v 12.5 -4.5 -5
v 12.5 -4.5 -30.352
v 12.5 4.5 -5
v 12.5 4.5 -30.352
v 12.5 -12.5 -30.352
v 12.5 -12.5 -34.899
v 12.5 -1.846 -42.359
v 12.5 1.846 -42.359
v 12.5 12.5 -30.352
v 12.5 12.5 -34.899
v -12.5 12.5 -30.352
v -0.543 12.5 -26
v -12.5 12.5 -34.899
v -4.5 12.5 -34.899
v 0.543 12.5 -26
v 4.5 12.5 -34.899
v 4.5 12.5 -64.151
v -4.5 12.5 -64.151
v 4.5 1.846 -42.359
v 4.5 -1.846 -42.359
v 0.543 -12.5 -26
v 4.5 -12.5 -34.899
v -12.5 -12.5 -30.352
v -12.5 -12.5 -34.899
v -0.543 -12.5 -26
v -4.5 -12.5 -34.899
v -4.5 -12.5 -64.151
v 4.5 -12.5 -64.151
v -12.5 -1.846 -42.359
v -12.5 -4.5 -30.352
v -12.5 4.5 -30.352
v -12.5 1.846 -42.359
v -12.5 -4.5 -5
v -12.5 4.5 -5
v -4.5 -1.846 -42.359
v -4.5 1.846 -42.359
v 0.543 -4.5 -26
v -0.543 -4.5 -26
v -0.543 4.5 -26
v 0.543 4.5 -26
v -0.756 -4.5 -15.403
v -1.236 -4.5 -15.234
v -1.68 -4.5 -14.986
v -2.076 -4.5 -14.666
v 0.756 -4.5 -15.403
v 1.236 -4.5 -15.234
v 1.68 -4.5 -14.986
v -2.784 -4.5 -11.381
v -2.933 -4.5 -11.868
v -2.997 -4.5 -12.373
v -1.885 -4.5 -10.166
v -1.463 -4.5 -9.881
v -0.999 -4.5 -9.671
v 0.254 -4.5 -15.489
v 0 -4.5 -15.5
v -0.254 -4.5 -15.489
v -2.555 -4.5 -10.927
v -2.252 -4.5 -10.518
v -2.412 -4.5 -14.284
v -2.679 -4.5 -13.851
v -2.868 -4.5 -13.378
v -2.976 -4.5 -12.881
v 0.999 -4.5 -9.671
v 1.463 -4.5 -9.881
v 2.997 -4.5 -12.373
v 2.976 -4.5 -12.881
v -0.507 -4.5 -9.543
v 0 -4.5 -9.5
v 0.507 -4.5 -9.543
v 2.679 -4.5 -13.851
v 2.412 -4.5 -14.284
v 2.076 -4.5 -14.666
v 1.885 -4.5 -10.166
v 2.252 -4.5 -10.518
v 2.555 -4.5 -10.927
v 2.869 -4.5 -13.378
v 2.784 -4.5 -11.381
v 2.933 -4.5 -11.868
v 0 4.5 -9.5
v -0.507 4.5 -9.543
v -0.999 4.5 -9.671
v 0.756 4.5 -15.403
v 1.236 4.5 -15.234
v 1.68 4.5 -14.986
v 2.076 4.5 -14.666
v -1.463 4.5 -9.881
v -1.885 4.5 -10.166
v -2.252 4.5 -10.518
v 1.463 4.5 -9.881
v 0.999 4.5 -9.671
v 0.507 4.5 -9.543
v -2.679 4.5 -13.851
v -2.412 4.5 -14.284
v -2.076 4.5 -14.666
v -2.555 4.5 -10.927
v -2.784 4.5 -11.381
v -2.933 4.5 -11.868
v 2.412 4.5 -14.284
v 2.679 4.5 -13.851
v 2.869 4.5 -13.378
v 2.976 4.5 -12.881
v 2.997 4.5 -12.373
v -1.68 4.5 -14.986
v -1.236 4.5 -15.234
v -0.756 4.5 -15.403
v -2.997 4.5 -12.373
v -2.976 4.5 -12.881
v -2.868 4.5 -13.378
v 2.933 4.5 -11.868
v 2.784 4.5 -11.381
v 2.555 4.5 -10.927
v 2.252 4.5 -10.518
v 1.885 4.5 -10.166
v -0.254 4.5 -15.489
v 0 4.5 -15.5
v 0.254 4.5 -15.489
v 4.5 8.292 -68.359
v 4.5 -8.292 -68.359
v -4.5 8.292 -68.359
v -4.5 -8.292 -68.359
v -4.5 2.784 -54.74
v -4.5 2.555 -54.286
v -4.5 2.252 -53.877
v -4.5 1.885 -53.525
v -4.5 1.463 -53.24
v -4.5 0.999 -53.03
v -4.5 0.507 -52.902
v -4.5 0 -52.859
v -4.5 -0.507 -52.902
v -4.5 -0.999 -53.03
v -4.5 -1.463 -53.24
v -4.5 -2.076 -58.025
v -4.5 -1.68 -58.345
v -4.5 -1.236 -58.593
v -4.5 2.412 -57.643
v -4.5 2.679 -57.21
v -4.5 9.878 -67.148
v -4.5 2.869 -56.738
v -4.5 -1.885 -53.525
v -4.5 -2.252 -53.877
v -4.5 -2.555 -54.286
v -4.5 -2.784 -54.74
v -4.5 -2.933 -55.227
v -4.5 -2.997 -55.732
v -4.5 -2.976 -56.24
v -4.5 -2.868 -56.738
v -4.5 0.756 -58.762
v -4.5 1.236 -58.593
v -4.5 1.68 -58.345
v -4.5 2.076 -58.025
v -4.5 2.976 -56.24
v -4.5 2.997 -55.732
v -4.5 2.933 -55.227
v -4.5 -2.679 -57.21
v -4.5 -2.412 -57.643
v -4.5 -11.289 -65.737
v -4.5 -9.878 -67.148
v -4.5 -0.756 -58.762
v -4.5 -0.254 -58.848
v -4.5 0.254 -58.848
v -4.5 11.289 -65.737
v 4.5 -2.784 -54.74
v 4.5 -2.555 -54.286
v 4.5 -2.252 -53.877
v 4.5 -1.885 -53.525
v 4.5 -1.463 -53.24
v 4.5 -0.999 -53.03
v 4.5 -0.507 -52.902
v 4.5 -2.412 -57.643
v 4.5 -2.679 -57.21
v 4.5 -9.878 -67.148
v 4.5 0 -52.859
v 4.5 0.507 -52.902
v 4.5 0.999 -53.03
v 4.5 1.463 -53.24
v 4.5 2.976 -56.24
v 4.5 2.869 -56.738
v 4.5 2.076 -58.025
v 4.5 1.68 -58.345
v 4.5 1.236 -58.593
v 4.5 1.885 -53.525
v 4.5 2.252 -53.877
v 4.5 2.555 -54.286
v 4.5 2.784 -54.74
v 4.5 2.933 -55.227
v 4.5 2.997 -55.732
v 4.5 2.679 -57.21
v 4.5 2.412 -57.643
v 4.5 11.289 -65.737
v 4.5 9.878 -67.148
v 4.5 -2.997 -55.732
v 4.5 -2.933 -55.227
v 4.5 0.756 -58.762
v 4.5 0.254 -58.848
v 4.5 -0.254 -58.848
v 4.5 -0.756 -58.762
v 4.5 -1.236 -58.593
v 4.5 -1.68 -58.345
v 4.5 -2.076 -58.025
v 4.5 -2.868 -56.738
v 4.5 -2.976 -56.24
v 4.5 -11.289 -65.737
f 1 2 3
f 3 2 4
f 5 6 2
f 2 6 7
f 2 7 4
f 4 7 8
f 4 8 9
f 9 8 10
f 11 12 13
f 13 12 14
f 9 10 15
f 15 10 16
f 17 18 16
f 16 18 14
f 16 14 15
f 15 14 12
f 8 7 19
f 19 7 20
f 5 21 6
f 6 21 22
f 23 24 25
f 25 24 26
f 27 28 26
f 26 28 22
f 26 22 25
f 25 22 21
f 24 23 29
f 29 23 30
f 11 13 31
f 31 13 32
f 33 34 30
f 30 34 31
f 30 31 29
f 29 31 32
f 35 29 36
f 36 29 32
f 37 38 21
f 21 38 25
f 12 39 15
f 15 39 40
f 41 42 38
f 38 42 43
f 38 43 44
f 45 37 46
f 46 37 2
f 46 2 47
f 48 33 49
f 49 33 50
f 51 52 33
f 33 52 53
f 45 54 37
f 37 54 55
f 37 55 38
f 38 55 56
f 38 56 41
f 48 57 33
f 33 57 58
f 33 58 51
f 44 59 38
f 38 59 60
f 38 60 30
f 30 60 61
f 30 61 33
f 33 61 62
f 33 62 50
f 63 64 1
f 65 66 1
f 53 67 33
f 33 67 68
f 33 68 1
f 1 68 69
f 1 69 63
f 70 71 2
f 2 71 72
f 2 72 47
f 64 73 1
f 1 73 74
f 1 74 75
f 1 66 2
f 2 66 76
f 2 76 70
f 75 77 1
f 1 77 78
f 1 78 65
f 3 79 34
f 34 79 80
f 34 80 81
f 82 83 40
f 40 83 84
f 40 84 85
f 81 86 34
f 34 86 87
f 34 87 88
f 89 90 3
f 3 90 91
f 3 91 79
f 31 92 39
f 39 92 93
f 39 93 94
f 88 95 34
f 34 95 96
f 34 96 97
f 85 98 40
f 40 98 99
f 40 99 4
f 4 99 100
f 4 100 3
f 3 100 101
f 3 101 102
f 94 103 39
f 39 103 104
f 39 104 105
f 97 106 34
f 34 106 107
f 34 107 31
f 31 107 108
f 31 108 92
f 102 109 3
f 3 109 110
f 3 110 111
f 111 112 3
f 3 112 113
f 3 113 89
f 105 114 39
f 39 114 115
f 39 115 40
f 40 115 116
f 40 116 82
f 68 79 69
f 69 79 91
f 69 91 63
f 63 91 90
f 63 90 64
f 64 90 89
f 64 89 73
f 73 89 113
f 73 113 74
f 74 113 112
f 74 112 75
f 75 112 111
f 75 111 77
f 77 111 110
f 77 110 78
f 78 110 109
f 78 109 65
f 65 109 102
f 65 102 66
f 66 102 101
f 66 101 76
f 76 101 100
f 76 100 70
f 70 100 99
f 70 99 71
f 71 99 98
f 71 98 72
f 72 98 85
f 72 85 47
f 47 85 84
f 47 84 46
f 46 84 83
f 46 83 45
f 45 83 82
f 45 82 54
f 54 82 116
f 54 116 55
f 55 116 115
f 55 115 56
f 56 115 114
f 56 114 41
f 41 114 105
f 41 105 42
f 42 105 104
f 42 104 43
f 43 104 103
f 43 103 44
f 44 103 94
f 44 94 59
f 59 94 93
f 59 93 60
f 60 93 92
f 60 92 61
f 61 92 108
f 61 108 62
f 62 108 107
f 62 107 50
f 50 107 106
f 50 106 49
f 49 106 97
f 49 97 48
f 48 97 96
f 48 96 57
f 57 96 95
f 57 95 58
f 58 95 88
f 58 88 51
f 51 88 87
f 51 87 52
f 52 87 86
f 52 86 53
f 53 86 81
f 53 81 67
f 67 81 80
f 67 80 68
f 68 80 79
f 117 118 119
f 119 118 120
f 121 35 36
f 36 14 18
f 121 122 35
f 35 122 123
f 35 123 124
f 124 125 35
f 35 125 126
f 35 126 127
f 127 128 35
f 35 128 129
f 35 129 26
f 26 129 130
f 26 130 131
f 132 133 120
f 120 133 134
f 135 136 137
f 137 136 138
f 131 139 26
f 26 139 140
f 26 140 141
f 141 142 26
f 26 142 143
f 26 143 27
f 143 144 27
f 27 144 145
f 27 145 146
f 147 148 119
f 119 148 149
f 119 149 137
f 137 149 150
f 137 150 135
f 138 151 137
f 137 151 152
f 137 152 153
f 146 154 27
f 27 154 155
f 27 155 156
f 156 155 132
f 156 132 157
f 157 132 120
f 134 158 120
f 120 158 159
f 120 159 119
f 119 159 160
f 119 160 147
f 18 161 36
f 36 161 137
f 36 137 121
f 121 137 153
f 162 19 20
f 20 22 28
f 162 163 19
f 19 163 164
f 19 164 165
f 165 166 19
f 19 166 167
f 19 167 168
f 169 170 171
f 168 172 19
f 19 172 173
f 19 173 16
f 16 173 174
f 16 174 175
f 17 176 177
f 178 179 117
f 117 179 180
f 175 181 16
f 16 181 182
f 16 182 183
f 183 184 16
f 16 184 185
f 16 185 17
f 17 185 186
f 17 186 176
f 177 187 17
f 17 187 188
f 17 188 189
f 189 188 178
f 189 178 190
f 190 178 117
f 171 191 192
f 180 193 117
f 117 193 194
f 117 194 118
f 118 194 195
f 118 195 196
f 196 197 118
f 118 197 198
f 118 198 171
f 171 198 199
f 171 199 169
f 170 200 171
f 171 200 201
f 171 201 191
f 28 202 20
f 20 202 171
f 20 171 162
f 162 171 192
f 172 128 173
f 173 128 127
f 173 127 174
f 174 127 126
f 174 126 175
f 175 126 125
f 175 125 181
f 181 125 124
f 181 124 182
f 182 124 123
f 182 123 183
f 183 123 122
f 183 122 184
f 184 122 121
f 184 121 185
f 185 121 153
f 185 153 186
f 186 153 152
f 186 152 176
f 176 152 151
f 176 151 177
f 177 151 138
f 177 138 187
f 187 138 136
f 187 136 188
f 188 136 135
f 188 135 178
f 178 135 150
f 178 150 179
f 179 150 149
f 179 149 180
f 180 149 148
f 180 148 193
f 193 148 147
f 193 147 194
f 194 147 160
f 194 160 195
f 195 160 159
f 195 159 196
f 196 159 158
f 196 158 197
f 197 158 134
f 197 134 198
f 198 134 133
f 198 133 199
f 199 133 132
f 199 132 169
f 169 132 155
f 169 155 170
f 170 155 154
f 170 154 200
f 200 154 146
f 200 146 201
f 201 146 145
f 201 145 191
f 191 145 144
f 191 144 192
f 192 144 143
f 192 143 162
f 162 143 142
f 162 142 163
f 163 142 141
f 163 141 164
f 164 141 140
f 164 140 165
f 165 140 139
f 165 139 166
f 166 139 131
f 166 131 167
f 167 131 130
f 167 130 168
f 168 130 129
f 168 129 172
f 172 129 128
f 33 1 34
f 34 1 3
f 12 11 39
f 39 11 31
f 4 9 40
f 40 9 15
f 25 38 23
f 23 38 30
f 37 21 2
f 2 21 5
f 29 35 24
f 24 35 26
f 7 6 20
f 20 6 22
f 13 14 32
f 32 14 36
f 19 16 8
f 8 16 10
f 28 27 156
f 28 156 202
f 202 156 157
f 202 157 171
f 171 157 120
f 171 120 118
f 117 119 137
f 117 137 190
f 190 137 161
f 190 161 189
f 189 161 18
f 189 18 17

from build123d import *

# Parameters (mm, degrees)
SKETCH_1_W               = 25
SKETCH_1_H               = 25
EXTRUDE_1_DEPTH          = 68.359061336
SKETCH_2_W               = 25
SKETCH_2_H               = 8
CUT_EXTRUDE_3_DEPTH      = 26
CUT_EXTRUDE_START        = -17
SKETCH_4_R               = 3
CUT_EXTRUDE_4_DEPTH      = 57
MOVE_BODY_1_ANGLE        = 90
SKETCH_5_W               = 25
SKETCH_5_H               = 25
EXTRUDE_2_DEPTH          = 10
SKETCH_9_W               = 25
SKETCH_9_H               = 9
CUT_EXTRUDE_8_DEPTH      = 5
CUT_EXTRUDE_5_DEPTH      = 8
MIRROR_8_COPY_1_DEPTH    = 8
CUT_EXTRUDE_START_2      = 10
SKETCH_8_R               = 3
CUT_EXTRUDE_6_DEPTH      = 10
MIRROR_START             = 10
MIRROR_7_COPY_1_SKETCH_R = 3
MIRROR_7_COPY_1_DEPTH    = 10
CUT_EXTRUDE_9_DEPTH      = 10


# Read off the part's stored shape, not the designer's step: 교차1
with BuildPart() as part:
    # 스케치1 → 보스-돌출1 (new body)
    with BuildSketch(Plane.XY):
        Rectangle(SKETCH_1_W, SKETCH_1_H)
    extrude(amount=-EXTRUDE_1_DEPTH)

    # 스케치2 → 컷-돌출3 (cut)
    with BuildSketch(Plane(origin=(0, 0, -68.359061336), x_dir=(-1, 0, 0), z_dir=(0, 0, -1))):
        with Locations((0, 8.5)):
            Rectangle(SKETCH_2_W, SKETCH_2_H)
        with Locations((0, -8.5)):
            Rectangle(SKETCH_2_W, SKETCH_2_H)
    cut_extrude_3 = extrude(amount=-CUT_EXTRUDE_3_DEPTH, mode=Mode.SUBTRACT)

    # 스케치4 → 컷-돌출4 (cut)
    with BuildSketch(Plane.XZ.offset(-4.5).offset(CUT_EXTRUDE_START)):
        with Locations(Location((0, -55.859061336, 0), (0, 0, 90))):
            Circle(SKETCH_4_R)
    cut_extrude_4 = extrude(amount=CUT_EXTRUDE_4_DEPTH, mode=Mode.SUBTRACT)

    # 대칭 복사4: 컷-돌출3, 컷-돌출4 across plane
    add(cut_extrude_3.mirror(Plane.XY.offset(-34.179530668)), mode=Mode.SUBTRACT)
    add(cut_extrude_4.mirror(Plane.XY.offset(-34.179530668)), mode=Mode.SUBTRACT)


with BuildPart() as body_2:
    # 교차1: the piece on the far side of the plane
    add(part.part)
    split(bisect_by=Plane.XY.offset(-34.179530668), keep=Keep.BOTTOM)


with BuildPart() as part_1:
    add(part.part)

    # 교차1
    split(bisect_by=Plane.XY.offset(-34.179530668), keep=Keep.TOP)



with BuildPart() as body_2_1:
    # Move Body 1: moved
    add(body_2.part.rotate(Axis((0, 0, 0), (0, 0, 1)), MOVE_BODY_1_ANGLE))


with BuildPart() as part_2:
    add(part_1.part)

    add(body_2_1.part)  # 보스-돌출2 merges body 2
    # 스케치5 → 보스-돌출2 (add)
    with BuildSketch(Plane(origin=(0, 0, -42.359061336), x_dir=(-1, 0, 0), z_dir=(0, 0, -1))):
        Rectangle(SKETCH_5_W, SKETCH_5_H)
    extrude(amount=-EXTRUDE_2_DEPTH)

    # 스케치9 → 컷-돌출8 (cut)
    with BuildSketch(Plane.XY):
        Rectangle(SKETCH_9_W, SKETCH_9_H)
    extrude(amount=-CUT_EXTRUDE_8_DEPTH, mode=Mode.SUBTRACT)

    # 스케치7 → 컷-돌출5 (cut)
    with BuildSketch(Plane(origin=(-8, 4.5, 0), x_dir=(0, 0, 1), z_dir=(0, -1, 0))):
        Polygon((7.793639977, -63.756317597), (-41.547874973, 71.808380572), (-55.762350506, 74.314776125), (-6.420835555, -61.249922044), align=None)
    cut_extrude_5 = extrude(amount=-CUT_EXTRUDE_5_DEPTH, mode=Mode.SUBTRACT)

    # 대칭 복사5: 컷-돌출5 across plane
    add(cut_extrude_5.mirror(Plane(origin=(0, 0, 0), x_dir=(0, 0, 1), z_dir=(1, 0, 0))), mode=Mode.SUBTRACT)

    # 대칭 복사8: 컷-돌출5 across plane
    add(cut_extrude_5.mirror(Plane(origin=(0, 0, 0), x_dir=(0, 0, 1), z_dir=(0, -1, 0))), mode=Mode.SUBTRACT)

    # 대칭 복사8 copy 1 sketch → 대칭 복사8 copy 1 (cut)
    with BuildSketch(Plane(origin=(8, -4.5, 0), x_dir=(0, 0, 1), z_dir=(0, 1, 0))):
        Polygon((7.793639977, -63.756317597), (-41.547874973, 71.808380572), (-55.762350506, 74.314776125), (-6.420835555, -61.249922044), align=None)
    extrude(amount=-MIRROR_8_COPY_1_DEPTH, mode=Mode.SUBTRACT)

    # 스케치8 → 컷-돌출6 (cut)
    with BuildSketch(Plane(origin=(-4.5, 0, 0), x_dir=(0, 1, 0), z_dir=(-1, 0, 0)).offset(CUT_EXTRUDE_START_2)):
        Polygon((26.984001119, 62.545716444), (-15.512472392, 32.789365343), (-26.984001119, 49.172406229), (15.512472392, 78.92875733), align=None)
        with Locations(Location((0, 55.859061336, 0), (0, 0, 270))):
            Circle(SKETCH_8_R, mode=Mode.SUBTRACT)
    cut_extrude_6 = extrude(amount=-CUT_EXTRUDE_6_DEPTH, mode=Mode.SUBTRACT)

    # 대칭 복사6: 컷-돌출6 across plane
    add(cut_extrude_6.mirror(Plane(origin=(0, 0, 0), x_dir=(0, 0, 1), z_dir=(1, 0, 0))), mode=Mode.SUBTRACT)

    # 대칭 복사7: 컷-돌출6 across plane
    add(cut_extrude_6.mirror(Plane.ZX), mode=Mode.SUBTRACT)

    # 대칭 복사7 copy 1 sketch → 대칭 복사7 copy 1 (cut)
    with BuildSketch(Plane(origin=(4.5, 0, 0), x_dir=(0, -1, 0), z_dir=(1, 0, 0)).offset(MIRROR_START)):
        Polygon((26.984001119, 62.545716444), (-15.512472392, 32.789365343), (-26.984001119, 49.172406229), (15.512472392, 78.92875733), align=None)
        with Locations(Location((0, 55.859061336, 0), (0, 0, 270))):
            Circle(MIRROR_7_COPY_1_SKETCH_R, mode=Mode.SUBTRACT)
    extrude(amount=-MIRROR_7_COPY_1_DEPTH, mode=Mode.SUBTRACT)

    # 스케치10 → 컷-돌출9 (cut)
    with BuildSketch(Plane.ZY.offset(4.5)):
        with BuildLine():
            Line((-64.150623312, 12.5), (-68.359061336, 12.5))
            Line((-68.359061336, 12.5), (-68.359061336, 8.291561976))
            ThreePointArc((-68.359061336, 8.291561976), (-66.465663054, 10.606601718), (-64.150623312, 12.5))
        make_face()
        with BuildLine():
            Line((-64.150623312, -12.5), (-68.359061336, -12.5))
            Line((-68.359061336, -12.5), (-68.359061336, -8.291561976))
            ThreePointArc((-68.359061336, -8.291561976), (-66.465663054, -10.606601718), (-64.150623312, -12.5))
        make_face()
    extrude(amount=-CUT_EXTRUDE_9_DEPTH, mode=Mode.SUBTRACT)


solid = part_2.part
